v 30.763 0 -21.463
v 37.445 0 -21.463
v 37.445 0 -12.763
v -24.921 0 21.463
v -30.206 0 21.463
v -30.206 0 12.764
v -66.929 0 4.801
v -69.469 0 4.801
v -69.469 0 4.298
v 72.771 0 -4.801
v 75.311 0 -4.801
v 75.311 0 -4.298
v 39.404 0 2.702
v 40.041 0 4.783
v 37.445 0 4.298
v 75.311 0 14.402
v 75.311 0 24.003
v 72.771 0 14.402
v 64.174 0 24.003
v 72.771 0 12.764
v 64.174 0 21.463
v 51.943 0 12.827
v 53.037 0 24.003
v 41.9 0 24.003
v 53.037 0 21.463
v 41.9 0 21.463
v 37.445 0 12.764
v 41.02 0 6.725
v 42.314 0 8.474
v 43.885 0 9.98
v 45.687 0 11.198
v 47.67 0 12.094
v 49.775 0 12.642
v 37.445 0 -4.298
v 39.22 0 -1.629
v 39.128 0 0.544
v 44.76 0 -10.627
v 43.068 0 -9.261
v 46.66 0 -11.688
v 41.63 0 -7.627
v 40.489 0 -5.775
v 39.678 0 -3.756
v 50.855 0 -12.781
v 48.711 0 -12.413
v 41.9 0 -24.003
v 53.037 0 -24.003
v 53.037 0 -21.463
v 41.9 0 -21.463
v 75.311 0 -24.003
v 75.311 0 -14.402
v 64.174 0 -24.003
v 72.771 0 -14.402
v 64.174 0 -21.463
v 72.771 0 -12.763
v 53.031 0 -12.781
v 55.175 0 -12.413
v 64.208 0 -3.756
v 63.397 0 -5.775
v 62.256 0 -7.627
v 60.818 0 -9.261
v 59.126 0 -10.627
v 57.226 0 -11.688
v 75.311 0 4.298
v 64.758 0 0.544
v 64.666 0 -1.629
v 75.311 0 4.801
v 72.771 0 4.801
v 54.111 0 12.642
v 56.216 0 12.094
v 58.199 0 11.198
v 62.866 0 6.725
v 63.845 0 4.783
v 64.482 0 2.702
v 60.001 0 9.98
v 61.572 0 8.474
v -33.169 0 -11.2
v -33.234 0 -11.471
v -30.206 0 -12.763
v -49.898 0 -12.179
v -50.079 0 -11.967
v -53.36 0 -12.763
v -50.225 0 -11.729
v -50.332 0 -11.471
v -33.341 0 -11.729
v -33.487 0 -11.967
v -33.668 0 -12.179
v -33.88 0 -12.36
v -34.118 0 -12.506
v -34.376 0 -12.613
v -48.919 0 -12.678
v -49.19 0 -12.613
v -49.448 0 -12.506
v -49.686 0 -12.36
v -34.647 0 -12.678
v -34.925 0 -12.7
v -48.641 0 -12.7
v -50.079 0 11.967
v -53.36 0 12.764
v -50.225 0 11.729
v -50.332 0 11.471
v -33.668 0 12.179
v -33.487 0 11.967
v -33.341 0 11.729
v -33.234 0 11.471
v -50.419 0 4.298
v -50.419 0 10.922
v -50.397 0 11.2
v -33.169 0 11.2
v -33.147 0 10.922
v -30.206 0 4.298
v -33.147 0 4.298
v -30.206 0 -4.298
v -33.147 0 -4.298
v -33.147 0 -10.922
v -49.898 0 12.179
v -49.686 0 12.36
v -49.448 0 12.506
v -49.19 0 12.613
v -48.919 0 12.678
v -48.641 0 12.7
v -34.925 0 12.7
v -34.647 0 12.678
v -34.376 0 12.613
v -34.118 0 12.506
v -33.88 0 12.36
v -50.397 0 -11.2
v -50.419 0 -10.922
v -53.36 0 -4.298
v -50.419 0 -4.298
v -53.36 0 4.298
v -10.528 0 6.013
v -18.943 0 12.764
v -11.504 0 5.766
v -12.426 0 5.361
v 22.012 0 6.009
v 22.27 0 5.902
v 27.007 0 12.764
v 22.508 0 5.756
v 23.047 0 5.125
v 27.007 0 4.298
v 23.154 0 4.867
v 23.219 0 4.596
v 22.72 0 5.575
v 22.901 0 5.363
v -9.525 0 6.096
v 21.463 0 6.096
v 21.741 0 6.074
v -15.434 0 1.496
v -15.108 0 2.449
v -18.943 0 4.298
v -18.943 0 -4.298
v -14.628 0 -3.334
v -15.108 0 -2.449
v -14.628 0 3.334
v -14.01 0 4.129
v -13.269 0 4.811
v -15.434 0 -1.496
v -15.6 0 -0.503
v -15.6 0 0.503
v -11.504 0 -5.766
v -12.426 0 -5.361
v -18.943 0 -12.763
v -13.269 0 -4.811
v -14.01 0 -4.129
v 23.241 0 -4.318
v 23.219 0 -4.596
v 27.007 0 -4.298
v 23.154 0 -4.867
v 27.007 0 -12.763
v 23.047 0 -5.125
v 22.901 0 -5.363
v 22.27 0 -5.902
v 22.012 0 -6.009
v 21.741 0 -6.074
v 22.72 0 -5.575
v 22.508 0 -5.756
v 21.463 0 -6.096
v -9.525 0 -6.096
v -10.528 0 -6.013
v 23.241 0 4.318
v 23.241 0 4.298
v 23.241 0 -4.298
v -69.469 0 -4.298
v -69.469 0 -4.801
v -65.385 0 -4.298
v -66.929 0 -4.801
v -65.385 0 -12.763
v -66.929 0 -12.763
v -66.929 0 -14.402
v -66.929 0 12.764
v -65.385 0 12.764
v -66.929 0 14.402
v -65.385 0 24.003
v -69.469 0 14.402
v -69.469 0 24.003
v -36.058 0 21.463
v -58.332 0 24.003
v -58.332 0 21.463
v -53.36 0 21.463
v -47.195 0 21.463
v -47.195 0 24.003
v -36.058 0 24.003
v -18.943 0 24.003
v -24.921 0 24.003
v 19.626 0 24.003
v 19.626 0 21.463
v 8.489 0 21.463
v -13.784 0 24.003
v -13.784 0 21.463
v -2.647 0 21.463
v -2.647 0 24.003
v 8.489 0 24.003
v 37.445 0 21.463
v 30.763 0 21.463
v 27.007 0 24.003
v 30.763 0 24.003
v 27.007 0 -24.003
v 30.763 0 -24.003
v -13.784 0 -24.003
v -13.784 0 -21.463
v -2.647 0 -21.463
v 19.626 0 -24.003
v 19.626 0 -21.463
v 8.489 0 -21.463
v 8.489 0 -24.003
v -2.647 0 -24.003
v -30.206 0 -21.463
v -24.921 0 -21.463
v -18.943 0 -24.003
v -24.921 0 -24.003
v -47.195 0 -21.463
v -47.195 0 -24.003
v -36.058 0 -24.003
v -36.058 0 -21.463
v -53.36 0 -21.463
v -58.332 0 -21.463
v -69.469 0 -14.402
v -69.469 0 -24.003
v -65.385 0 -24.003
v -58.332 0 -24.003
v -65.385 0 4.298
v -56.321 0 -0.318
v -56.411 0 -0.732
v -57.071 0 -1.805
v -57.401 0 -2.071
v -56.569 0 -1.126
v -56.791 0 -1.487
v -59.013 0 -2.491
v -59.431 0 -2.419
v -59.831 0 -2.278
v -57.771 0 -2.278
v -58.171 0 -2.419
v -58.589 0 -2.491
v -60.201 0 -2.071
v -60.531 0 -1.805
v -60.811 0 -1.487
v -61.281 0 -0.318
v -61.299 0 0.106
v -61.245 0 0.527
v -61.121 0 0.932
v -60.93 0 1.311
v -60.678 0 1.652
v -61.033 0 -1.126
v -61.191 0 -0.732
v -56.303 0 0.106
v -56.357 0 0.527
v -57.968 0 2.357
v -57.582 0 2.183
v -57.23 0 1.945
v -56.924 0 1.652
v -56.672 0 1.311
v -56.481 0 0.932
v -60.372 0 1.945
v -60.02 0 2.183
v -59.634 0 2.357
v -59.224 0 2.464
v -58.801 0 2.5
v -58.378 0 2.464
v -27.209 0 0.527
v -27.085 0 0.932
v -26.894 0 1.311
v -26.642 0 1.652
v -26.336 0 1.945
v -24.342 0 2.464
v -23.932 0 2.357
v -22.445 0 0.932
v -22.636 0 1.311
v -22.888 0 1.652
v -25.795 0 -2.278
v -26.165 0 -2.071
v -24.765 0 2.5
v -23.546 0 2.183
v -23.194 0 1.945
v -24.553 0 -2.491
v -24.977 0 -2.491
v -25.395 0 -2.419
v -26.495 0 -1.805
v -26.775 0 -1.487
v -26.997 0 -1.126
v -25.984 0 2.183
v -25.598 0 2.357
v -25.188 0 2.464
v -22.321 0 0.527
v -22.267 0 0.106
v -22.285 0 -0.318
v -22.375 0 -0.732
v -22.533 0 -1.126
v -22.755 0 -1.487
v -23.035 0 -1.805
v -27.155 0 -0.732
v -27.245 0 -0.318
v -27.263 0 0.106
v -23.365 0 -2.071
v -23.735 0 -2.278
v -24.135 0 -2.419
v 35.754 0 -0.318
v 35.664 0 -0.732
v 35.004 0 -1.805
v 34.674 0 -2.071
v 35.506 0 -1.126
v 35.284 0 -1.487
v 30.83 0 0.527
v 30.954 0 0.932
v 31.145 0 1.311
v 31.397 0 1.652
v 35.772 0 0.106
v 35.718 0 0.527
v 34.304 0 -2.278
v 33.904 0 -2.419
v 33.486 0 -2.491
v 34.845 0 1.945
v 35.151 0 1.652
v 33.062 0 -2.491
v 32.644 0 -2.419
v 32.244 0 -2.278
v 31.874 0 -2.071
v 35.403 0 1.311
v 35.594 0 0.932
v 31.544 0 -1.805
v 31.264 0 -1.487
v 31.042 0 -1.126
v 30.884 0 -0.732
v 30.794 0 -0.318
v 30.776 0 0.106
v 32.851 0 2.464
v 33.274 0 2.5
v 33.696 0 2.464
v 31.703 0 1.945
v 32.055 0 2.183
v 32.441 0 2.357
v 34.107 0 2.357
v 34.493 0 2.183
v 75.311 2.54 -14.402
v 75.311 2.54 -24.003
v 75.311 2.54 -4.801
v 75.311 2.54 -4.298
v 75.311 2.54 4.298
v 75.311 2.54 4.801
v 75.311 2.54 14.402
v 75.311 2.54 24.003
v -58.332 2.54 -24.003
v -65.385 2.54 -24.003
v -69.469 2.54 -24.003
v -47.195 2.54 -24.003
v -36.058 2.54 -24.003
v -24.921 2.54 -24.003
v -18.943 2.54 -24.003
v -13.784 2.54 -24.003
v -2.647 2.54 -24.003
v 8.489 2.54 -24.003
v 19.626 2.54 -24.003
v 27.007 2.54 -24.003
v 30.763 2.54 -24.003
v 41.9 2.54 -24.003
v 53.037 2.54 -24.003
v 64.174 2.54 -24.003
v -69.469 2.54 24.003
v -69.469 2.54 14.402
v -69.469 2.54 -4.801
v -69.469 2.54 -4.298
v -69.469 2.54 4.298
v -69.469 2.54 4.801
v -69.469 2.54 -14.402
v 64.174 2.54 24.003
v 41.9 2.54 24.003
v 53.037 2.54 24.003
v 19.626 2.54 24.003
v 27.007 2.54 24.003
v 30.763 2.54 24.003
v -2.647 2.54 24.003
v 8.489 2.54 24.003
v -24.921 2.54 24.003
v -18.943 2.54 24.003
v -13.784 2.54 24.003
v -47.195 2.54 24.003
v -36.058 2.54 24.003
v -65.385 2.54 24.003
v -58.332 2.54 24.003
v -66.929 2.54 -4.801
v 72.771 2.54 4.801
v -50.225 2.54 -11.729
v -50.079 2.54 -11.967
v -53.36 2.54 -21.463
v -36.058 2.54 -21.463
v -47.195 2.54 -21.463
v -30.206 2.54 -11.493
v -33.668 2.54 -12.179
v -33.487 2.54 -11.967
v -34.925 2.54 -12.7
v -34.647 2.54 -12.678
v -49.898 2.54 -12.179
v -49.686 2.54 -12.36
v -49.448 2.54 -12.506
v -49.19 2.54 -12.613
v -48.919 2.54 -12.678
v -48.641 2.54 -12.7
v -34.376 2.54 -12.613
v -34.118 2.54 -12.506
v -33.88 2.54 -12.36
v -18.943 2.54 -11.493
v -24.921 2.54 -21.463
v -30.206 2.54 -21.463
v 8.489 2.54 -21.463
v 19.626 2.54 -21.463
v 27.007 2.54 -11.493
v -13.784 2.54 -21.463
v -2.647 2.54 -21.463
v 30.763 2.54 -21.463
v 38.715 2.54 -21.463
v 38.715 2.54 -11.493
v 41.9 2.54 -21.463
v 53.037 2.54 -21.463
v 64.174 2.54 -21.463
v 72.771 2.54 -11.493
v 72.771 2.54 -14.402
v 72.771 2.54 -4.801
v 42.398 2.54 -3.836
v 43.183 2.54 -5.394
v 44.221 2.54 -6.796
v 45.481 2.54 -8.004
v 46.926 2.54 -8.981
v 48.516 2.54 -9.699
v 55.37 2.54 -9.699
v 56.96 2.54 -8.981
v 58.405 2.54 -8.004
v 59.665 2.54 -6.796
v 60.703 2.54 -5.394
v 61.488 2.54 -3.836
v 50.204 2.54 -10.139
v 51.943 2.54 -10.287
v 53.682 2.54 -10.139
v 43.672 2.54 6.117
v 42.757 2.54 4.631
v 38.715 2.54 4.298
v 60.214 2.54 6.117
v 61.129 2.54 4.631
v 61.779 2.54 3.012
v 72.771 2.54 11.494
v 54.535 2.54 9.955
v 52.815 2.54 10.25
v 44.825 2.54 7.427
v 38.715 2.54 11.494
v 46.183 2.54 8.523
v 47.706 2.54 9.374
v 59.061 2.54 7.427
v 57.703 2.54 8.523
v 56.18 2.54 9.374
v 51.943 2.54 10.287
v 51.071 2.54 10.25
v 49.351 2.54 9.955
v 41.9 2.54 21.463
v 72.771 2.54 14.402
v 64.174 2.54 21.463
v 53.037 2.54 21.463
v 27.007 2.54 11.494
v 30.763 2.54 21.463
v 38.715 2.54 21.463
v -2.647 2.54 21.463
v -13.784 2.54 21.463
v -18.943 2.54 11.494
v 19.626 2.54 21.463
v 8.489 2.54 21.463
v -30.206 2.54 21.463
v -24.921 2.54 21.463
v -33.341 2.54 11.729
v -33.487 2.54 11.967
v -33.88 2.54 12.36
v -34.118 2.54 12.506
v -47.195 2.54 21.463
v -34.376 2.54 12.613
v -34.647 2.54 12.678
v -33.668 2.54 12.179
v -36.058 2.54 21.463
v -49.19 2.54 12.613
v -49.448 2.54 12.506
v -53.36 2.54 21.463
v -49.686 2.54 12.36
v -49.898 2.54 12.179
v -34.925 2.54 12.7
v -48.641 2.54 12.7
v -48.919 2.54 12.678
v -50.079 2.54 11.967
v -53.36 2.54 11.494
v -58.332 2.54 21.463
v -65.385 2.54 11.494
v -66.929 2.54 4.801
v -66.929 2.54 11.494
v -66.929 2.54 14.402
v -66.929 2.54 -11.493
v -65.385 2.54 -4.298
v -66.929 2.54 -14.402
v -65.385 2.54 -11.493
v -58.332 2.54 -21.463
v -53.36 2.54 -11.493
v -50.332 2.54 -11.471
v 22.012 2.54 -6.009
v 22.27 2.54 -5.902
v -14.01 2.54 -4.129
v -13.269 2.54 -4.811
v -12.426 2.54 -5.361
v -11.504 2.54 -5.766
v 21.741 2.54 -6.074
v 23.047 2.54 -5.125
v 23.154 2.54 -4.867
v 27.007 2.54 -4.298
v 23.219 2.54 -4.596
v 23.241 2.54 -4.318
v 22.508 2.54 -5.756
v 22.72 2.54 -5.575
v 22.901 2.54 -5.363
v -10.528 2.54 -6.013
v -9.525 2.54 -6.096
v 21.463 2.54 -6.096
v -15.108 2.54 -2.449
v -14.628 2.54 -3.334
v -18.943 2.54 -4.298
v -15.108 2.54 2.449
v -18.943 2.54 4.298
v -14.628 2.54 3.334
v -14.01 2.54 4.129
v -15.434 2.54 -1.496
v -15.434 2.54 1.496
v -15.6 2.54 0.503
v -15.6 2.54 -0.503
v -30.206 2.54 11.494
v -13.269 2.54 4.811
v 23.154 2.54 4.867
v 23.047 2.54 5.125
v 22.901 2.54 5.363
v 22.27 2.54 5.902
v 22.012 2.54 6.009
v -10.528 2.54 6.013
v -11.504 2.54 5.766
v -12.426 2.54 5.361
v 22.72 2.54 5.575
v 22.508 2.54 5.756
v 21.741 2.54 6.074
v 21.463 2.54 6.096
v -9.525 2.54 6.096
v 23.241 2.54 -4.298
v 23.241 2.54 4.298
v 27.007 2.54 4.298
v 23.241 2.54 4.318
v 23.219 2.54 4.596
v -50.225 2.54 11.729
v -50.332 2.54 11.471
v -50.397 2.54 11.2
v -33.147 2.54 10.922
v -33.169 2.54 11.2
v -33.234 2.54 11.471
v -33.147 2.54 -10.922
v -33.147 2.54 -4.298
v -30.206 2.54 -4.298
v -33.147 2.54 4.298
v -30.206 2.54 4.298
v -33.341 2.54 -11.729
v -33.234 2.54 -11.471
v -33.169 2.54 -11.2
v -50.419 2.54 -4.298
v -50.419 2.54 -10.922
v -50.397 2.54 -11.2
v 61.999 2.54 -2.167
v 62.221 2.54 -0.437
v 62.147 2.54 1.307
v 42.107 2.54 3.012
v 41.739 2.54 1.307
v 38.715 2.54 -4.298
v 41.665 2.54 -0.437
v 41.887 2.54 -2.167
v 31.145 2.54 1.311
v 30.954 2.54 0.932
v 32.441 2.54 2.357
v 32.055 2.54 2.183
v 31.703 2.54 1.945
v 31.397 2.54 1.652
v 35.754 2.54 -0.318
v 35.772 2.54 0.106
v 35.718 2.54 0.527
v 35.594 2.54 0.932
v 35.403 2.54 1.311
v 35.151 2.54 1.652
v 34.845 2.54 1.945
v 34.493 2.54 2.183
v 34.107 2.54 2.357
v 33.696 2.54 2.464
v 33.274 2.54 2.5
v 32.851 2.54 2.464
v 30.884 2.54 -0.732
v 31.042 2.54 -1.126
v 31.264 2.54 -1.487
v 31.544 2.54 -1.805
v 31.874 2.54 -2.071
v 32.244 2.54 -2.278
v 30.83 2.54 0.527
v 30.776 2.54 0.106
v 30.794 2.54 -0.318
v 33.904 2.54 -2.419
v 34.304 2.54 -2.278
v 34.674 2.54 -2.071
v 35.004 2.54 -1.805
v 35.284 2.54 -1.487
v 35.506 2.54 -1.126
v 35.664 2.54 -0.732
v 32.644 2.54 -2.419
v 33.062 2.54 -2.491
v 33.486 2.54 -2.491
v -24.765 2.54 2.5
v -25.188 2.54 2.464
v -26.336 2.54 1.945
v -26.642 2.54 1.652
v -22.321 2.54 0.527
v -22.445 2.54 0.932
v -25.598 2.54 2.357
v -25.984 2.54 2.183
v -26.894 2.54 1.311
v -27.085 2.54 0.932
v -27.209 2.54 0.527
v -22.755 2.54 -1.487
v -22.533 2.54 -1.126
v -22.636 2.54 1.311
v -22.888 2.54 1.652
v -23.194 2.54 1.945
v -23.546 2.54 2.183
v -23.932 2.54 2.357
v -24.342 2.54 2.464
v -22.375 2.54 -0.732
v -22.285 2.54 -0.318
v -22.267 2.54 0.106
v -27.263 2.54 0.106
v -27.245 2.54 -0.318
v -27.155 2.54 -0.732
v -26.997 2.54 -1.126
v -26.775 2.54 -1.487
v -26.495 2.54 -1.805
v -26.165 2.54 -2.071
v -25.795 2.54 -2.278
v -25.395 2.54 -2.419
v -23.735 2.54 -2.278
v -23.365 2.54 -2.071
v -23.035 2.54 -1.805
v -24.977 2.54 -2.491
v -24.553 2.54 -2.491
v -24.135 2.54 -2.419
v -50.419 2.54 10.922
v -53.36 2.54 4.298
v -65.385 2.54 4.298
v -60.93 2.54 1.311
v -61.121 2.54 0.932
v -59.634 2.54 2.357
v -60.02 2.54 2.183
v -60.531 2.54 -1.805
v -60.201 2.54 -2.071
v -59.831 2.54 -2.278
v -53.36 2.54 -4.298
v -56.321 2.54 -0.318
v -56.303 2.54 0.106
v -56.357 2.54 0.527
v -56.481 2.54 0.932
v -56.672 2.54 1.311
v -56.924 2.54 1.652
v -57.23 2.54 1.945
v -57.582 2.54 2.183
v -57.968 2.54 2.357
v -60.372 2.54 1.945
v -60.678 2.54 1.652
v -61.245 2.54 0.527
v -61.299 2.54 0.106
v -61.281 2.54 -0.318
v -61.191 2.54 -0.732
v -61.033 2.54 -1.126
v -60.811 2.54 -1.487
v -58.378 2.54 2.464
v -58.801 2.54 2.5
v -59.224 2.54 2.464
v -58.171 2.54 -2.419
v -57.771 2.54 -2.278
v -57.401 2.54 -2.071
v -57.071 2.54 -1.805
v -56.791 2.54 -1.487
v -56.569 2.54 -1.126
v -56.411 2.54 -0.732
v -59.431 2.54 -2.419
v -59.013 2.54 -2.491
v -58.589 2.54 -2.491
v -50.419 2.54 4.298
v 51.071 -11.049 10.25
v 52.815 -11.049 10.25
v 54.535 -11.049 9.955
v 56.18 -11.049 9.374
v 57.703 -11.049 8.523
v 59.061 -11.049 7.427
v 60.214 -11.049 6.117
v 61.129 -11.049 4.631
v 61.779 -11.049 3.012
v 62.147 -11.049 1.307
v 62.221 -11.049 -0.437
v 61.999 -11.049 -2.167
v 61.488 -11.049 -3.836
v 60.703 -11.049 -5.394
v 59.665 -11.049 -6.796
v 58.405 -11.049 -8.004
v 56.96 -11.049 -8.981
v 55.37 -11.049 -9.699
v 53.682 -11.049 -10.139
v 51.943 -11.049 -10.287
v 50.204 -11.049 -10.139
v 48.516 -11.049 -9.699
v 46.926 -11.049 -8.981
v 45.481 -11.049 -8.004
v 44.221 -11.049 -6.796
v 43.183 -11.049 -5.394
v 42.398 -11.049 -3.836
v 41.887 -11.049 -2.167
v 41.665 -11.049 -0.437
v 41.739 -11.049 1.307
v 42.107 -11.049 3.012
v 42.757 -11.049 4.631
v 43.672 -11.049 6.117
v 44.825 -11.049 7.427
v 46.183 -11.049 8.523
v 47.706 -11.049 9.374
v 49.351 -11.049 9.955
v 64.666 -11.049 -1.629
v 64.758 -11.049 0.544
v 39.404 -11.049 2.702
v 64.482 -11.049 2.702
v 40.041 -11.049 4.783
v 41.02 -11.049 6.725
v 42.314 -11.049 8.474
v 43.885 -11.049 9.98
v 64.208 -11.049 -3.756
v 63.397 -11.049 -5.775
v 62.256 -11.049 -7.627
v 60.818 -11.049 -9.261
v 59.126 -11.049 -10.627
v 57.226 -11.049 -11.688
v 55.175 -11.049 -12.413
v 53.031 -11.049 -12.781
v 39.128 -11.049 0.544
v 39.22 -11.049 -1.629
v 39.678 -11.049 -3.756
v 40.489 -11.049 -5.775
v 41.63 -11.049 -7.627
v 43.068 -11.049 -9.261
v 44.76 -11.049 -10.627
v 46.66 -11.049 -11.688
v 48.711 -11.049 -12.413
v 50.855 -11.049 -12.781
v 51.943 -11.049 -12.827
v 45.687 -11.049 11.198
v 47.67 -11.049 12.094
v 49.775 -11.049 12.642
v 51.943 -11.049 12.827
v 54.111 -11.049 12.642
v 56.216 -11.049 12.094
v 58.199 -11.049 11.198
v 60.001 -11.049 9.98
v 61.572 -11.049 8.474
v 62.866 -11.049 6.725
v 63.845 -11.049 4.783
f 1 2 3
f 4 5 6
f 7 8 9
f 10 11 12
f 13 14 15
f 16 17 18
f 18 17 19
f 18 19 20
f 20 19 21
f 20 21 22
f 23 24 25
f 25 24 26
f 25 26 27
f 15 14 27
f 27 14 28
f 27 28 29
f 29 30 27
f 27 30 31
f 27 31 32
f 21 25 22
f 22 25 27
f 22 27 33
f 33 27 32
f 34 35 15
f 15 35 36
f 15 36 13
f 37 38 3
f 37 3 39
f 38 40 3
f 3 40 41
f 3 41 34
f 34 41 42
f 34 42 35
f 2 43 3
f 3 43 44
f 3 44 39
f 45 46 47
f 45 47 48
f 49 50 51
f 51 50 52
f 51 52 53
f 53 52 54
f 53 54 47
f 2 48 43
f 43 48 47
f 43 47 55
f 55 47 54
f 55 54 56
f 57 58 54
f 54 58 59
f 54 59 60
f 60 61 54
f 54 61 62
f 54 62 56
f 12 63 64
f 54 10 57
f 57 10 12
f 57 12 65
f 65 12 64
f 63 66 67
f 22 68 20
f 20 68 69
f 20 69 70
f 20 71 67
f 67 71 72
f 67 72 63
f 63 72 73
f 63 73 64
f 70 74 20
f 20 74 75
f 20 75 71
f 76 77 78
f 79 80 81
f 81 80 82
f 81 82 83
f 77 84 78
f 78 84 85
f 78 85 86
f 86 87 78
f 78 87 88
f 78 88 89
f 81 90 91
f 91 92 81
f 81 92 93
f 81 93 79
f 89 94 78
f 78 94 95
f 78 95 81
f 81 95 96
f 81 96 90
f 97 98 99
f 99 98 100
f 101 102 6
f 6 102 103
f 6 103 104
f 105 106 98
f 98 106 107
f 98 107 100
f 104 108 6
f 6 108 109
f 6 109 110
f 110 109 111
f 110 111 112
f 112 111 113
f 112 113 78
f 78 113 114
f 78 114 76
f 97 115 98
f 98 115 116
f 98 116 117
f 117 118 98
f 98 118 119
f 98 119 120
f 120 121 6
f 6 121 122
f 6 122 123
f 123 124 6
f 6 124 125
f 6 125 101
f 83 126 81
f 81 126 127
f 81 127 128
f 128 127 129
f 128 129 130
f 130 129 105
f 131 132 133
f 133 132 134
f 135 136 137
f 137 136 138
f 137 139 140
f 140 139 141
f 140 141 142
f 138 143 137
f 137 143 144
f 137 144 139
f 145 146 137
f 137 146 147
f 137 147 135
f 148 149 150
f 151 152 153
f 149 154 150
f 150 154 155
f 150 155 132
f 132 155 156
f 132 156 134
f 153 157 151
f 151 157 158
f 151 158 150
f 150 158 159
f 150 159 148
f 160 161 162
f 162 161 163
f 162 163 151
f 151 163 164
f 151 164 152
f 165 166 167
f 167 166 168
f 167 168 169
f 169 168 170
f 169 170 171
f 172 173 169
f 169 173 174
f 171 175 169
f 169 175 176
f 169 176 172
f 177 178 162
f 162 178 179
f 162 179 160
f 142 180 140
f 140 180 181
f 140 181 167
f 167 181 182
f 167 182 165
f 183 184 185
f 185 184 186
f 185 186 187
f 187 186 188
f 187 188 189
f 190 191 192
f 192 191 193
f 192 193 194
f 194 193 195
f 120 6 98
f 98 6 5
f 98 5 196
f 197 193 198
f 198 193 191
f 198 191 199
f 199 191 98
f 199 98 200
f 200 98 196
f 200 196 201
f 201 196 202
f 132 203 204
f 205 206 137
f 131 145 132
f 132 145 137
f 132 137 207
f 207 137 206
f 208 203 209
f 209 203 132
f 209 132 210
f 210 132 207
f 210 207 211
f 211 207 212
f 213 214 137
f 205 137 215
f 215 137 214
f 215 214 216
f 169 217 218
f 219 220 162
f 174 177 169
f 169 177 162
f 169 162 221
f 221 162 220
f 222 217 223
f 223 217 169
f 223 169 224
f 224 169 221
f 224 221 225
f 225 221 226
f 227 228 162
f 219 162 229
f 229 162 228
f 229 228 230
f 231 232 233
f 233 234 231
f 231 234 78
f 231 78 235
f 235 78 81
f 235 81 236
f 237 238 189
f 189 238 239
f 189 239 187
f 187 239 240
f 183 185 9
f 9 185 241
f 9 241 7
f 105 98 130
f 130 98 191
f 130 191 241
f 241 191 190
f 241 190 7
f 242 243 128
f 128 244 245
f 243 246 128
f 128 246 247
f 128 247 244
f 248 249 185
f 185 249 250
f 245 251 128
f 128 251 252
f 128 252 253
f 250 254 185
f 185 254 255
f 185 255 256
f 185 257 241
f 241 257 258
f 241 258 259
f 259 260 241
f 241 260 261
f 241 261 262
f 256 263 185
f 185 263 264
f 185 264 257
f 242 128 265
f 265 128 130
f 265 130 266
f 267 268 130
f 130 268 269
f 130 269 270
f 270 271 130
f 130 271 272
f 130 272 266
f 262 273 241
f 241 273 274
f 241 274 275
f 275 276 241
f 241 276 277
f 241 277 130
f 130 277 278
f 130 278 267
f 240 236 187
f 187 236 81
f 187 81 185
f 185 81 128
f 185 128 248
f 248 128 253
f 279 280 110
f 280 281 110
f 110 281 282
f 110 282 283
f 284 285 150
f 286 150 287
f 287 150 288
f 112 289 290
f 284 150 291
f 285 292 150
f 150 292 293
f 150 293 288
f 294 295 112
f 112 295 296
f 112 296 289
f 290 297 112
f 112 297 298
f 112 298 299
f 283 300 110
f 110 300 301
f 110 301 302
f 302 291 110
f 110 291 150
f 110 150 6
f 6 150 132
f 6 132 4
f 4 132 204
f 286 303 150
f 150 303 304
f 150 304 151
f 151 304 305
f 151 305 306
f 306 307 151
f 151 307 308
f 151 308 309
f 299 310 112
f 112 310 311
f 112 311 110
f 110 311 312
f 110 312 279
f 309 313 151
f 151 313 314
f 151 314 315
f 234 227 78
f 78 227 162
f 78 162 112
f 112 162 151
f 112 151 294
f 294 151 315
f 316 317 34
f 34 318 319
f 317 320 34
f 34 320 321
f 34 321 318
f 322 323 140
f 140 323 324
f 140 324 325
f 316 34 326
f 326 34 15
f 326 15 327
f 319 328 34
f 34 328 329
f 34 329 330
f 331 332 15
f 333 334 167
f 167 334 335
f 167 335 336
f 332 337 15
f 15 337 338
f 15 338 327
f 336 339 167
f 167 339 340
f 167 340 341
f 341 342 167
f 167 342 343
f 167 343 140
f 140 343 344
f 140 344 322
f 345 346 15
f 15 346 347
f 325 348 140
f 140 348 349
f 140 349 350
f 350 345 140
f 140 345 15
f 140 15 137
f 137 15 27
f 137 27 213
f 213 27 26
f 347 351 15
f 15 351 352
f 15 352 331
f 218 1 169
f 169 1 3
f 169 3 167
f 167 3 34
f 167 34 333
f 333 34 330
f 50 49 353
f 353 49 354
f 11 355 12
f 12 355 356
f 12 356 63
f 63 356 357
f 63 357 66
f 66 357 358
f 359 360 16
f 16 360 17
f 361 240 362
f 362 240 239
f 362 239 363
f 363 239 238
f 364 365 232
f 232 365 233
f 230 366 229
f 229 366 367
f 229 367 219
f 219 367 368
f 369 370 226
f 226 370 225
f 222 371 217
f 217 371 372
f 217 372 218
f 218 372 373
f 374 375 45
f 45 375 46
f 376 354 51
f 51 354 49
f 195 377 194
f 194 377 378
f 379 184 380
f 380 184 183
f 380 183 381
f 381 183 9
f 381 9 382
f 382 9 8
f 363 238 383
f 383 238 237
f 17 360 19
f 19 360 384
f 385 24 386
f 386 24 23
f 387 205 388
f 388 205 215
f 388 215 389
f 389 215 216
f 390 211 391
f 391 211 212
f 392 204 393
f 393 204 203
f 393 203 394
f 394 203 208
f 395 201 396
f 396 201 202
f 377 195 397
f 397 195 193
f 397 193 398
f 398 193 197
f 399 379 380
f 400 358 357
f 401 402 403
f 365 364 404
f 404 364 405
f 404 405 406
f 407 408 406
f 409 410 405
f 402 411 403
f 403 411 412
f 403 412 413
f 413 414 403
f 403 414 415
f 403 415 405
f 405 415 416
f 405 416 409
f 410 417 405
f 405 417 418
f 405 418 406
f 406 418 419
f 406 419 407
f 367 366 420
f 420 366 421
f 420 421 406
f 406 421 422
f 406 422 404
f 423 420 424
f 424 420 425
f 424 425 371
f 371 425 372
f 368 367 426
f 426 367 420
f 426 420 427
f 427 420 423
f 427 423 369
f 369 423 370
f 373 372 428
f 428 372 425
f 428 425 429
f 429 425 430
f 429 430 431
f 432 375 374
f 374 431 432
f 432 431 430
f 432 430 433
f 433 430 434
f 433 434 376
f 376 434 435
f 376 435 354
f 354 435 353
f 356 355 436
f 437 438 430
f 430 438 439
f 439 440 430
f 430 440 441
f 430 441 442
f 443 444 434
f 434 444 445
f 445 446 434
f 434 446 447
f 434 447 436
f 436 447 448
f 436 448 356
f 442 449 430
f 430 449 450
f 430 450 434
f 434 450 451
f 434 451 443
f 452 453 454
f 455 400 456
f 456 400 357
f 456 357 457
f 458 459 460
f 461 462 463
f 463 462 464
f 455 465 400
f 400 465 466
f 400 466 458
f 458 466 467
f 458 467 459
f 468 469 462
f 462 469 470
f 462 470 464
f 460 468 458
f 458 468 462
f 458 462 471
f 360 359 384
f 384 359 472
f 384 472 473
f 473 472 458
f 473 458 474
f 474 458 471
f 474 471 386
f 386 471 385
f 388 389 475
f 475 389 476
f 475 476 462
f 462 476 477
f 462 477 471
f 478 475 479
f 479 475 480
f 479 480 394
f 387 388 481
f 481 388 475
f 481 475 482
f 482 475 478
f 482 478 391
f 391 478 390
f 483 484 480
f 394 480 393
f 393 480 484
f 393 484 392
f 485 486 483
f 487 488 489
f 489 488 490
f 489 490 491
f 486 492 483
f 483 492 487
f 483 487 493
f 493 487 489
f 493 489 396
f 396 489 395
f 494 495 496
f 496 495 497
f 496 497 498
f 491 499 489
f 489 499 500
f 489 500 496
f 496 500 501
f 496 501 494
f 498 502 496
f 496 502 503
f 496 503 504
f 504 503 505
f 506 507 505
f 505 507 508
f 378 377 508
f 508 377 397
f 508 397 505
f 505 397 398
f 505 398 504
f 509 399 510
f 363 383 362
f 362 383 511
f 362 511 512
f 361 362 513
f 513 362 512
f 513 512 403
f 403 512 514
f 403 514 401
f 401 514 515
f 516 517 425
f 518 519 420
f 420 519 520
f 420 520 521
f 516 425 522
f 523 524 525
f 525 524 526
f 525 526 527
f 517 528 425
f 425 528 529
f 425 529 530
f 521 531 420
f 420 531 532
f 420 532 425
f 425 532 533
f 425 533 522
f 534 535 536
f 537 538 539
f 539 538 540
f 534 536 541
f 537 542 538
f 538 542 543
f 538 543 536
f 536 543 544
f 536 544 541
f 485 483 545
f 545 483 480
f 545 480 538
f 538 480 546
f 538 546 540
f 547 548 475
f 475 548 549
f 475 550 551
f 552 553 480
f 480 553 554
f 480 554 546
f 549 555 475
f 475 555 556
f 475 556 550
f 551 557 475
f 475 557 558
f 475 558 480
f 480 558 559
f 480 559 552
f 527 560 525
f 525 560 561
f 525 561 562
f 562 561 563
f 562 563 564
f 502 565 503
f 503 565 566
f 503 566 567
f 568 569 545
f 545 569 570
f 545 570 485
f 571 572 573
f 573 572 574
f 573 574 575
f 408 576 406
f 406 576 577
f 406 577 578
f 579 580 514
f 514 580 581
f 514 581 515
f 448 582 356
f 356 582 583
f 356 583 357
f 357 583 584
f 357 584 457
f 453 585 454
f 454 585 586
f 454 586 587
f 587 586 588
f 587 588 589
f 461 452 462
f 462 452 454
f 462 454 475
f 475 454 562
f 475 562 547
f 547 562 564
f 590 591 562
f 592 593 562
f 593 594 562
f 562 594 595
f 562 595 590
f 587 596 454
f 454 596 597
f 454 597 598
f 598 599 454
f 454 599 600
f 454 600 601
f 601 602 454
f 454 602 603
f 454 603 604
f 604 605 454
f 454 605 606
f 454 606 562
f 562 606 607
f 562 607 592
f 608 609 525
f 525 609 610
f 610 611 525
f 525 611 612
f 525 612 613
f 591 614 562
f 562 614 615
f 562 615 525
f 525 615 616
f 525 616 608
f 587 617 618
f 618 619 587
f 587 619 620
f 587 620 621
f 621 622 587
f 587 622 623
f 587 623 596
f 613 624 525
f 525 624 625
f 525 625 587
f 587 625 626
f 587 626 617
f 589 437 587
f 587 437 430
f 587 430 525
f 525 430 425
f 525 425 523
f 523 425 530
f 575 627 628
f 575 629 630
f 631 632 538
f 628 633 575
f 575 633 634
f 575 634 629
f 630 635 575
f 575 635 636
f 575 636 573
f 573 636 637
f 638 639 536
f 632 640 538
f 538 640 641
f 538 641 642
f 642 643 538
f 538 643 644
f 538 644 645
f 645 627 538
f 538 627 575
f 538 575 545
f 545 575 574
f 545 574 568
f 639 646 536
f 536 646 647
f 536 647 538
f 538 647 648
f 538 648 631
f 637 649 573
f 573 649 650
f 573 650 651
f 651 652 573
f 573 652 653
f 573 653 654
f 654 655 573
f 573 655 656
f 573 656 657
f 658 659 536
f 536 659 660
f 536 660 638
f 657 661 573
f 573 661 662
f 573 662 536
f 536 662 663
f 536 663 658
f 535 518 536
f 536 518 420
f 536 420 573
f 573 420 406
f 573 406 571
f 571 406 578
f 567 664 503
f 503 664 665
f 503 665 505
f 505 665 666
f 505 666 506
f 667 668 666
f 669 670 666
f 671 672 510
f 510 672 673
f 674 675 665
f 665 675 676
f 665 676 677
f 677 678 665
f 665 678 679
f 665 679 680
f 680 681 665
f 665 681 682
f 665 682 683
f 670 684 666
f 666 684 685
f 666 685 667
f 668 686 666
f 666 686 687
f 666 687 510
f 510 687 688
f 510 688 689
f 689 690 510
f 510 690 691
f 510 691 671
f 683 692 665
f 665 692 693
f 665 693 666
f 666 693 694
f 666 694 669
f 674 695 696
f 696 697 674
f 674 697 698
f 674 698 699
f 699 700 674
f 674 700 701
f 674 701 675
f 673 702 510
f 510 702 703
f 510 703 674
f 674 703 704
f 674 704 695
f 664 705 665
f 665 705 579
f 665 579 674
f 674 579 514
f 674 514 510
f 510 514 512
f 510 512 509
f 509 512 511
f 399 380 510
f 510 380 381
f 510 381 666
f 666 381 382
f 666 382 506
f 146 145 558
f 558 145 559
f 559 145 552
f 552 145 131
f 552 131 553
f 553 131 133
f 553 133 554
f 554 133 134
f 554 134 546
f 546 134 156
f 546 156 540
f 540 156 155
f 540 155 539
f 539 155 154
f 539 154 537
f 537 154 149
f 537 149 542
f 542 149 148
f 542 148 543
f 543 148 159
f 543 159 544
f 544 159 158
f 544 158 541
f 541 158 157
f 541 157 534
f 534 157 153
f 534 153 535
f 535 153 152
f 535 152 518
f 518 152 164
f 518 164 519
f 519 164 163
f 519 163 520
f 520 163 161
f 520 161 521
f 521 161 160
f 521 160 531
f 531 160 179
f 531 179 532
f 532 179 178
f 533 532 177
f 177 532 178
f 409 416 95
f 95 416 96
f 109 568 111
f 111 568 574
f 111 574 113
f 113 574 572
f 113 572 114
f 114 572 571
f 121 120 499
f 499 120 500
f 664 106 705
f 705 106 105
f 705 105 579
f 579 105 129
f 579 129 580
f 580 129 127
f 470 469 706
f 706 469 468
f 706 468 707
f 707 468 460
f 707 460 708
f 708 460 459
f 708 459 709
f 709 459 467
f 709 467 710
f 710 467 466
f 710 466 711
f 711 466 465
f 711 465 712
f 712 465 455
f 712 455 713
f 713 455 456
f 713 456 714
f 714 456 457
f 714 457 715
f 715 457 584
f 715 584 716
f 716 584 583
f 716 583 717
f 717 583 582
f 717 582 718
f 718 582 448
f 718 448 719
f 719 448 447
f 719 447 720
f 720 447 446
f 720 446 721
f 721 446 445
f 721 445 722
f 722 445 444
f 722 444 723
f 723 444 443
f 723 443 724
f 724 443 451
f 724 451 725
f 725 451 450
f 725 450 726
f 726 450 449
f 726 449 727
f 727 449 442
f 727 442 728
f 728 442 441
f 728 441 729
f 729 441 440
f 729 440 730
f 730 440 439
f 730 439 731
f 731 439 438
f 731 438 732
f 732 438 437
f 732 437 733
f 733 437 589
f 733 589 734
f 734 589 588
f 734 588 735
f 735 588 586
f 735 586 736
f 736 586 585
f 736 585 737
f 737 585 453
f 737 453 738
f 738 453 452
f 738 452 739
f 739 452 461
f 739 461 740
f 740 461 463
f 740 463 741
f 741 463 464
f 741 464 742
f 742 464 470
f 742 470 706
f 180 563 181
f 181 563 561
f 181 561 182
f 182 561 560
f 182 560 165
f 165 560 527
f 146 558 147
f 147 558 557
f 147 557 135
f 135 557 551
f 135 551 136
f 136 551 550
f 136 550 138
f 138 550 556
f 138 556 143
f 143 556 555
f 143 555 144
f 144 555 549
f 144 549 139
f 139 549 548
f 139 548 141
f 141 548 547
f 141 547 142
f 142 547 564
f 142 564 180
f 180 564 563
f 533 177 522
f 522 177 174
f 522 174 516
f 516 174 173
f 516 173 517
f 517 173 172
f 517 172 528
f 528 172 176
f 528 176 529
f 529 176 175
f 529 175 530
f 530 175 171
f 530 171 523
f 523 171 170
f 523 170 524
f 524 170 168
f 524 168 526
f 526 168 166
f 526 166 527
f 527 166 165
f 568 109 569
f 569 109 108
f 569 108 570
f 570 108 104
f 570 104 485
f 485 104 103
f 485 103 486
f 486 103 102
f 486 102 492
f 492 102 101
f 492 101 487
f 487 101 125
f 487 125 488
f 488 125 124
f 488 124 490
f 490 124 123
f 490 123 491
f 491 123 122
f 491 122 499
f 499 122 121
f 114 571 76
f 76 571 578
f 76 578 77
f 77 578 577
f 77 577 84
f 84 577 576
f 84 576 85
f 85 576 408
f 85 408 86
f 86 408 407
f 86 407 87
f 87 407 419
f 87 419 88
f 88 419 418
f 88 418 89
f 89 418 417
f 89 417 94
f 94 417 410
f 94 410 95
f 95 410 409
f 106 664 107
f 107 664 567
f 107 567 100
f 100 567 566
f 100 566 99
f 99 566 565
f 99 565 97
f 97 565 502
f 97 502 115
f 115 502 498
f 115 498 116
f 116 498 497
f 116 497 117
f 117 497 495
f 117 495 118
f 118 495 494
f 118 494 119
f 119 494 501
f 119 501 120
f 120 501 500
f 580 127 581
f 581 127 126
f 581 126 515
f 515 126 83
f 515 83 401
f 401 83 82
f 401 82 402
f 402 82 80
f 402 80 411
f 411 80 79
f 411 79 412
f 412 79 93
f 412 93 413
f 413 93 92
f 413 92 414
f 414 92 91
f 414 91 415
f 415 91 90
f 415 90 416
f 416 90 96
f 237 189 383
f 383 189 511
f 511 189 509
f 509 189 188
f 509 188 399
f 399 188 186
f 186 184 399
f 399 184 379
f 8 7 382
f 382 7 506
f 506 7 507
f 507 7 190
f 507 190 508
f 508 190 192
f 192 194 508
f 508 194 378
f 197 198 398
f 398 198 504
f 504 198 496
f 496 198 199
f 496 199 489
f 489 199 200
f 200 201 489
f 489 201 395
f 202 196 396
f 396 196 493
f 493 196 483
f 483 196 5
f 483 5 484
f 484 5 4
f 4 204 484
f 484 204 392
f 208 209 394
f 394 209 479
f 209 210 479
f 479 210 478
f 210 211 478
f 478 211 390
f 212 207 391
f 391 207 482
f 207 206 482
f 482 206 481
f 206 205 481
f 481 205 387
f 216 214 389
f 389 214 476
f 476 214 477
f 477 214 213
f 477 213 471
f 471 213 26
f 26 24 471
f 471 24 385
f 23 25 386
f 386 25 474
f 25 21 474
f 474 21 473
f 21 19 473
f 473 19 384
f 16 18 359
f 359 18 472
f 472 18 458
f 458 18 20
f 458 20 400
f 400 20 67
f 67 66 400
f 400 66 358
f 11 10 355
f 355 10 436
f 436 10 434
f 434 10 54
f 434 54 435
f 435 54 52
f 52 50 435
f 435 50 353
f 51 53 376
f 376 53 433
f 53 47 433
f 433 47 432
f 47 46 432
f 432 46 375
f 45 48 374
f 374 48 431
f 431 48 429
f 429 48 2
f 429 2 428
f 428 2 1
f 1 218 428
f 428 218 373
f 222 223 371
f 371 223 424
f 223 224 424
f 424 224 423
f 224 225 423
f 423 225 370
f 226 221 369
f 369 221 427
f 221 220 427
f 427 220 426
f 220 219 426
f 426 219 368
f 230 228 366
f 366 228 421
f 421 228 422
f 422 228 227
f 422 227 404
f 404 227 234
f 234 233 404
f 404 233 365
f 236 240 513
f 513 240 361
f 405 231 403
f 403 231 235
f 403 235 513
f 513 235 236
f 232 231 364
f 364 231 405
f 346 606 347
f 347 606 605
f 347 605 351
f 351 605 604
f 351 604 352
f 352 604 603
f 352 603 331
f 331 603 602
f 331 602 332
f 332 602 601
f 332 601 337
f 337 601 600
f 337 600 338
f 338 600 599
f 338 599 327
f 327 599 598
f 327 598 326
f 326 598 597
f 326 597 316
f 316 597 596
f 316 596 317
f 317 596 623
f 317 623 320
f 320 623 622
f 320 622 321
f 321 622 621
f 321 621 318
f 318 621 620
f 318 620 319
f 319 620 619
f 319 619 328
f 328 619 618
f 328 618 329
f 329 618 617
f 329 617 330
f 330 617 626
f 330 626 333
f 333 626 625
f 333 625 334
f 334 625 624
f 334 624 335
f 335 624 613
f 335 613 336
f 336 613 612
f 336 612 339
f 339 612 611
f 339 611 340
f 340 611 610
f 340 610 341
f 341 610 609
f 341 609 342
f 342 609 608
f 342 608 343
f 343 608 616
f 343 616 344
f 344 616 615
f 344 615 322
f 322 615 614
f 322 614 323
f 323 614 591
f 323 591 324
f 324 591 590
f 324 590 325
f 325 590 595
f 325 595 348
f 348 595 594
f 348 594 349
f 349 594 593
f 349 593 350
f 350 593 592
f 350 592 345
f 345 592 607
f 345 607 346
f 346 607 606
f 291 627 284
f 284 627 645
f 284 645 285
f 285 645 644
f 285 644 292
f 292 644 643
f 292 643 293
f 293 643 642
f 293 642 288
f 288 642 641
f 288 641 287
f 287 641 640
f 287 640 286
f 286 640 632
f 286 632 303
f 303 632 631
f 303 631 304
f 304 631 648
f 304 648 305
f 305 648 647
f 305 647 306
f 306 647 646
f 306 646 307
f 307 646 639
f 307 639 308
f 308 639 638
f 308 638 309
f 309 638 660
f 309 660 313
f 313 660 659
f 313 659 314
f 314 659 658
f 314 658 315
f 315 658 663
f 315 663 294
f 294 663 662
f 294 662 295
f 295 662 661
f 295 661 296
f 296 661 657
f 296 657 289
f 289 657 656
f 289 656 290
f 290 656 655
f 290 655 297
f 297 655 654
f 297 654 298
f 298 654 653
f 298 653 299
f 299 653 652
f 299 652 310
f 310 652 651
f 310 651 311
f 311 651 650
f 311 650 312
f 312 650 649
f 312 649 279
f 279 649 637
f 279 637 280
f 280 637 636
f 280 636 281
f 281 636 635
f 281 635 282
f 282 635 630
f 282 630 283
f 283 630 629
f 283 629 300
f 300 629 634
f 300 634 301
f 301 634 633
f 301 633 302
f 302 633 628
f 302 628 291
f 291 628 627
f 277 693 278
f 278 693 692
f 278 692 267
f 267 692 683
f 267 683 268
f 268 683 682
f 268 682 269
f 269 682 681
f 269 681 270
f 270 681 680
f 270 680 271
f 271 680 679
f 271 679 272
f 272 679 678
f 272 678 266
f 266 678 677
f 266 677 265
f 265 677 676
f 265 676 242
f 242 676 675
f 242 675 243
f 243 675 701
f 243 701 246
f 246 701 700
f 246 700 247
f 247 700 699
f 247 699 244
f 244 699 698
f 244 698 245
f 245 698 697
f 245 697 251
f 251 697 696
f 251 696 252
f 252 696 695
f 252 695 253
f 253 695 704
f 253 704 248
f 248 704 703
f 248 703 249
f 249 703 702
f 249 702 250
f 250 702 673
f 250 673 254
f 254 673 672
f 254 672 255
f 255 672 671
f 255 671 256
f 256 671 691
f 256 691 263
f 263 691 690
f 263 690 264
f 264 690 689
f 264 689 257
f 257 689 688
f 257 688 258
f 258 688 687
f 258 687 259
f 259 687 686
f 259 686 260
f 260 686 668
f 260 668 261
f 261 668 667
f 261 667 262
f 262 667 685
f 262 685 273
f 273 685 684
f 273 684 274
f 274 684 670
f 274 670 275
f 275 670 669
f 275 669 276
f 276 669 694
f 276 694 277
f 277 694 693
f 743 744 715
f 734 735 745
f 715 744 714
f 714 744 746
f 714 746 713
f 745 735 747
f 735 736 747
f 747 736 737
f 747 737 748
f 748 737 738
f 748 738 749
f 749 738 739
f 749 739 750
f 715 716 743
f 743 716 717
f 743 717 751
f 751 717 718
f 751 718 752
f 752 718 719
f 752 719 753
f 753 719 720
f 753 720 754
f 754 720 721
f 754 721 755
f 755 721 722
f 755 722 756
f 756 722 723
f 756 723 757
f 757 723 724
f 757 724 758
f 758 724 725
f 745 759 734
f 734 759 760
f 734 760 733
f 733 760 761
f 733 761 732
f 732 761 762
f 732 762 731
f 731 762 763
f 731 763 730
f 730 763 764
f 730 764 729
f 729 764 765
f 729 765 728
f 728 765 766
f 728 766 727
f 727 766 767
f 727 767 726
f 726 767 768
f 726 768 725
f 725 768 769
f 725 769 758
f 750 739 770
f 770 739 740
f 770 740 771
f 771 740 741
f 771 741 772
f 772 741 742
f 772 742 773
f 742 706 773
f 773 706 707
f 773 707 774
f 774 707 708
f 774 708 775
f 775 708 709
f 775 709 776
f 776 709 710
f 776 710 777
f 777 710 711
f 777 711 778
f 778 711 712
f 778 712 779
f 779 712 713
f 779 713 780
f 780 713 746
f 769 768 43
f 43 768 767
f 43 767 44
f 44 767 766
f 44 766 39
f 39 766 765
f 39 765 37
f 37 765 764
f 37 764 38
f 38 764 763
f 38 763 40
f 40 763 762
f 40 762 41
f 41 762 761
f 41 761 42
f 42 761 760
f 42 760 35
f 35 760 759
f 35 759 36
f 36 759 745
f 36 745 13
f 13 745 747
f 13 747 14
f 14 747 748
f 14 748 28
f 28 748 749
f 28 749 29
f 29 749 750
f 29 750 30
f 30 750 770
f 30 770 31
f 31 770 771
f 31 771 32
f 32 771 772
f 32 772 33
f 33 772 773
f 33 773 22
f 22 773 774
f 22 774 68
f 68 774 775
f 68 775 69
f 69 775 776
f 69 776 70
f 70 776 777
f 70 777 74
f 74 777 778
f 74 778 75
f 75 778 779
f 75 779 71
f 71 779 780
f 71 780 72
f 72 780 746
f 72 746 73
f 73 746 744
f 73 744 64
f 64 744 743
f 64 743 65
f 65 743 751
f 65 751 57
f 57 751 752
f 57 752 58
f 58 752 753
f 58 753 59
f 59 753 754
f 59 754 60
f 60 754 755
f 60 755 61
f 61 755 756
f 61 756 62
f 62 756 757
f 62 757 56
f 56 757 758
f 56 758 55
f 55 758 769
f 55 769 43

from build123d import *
from build123d.topology import SkipClean

# Parameters (mm, degrees)
SKETCH1_W           = 144.78
SKETCH1_H           = 48.006
SKETCH1_R           = 10.287
SKETCH1_W_2         = 17.272
SKETCH1_H_2         = 25.4
BOSS_EXTRUDE1_DEPTH = 2.54
FILLET1_R           = 1.778
SKETCH2_OUTSIDE_W   = 177.29
SKETCH2_OUTSIDE_H   = 80.516
CUT_EXTRUDE1_DEPTH  = 2.54
SKETCH3_R           = 2.5
CUT_EXTRUDE2_DEPTH  = 80.084400042
BOSS_EXTRUDE2_START = 11.049
SKETCH4_R           = 12.827
SKETCH4_R_2         = 10.287
BOSS_EXTRUDE2_DEPTH = 11.049


with BuildPart() as part:
    # Sketch1 → Boss-Extrude1 (new body)
    with BuildSketch(Plane(origin=(0, 0, 0), x_dir=(1, 0, 0), z_dir=(0, 1, 0))):
        with Locations((2.921, 0)):
            Rectangle(SKETCH1_W, SKETCH1_H)
        with Locations(Location((51.943, 0, 0), (0, 0, 270))):
            Circle(SKETCH1_R, mode=Mode.SUBTRACT)
        with Locations((-41.783, 0)):
            Rectangle(SKETCH1_W_2, SKETCH1_H_2, mode=Mode.SUBTRACT)
        with BuildLine():
            Line((23.241, -6.096), (-9.525, -6.096))
            ThreePointArc((-9.525, -6.096), (-15.621, 0), (-9.525, 6.096))
            Line((-9.525, 6.096), (23.241, 6.096))
            Line((23.241, 6.096), (23.241, -6.096))
        make_face(mode=Mode.SUBTRACT)
    extrude(amount=BOSS_EXTRUDE1_DEPTH)

    # Fillet1
    fillet1_edges = [part.edges().sort_by_distance(p)[0] for p in [
        (23.241, 1.27, 6.096),
        (23.241, 1.27, -6.096),
        (-50.419, 1.27, -12.7),
        (-50.419, 1.27, 12.7),
        (-33.147, 1.27, 12.7),
        (-33.147, 1.27, -12.7),
    ]]
    fillet(fillet1_edges, radius=FILLET1_R)

    # Sketch2 outside → Cut-Extrude1 (cut)
    with BuildSketch(Plane(origin=(0, 2.54, 0), x_dir=(1, 0, 0), z_dir=(0, 1, 0))):
        with Locations((2.921, 0)):
            Rectangle(SKETCH2_OUTSIDE_W, SKETCH2_OUTSIDE_H)
        Polygon((-69.469, 24.003), (-69.469, 14.4018), (-66.929, 14.4018), (-66.929, 4.8006), (-69.469, 4.8006), (-69.469, -4.8006), (-66.929, -4.8006), (-66.929, -14.4018), (-69.469, -14.4018), (-69.469, -24.003), (-58.332076923, -24.003), (-58.332076923, -21.463), (-47.195153846, -21.463), (-47.195153846, -24.003), (-36.058230769, -24.003), (-36.058230769, -21.463), (-24.921307692, -21.463), (-24.921307692, -24.003), (-13.784384615, -24.003), (-13.784384615, -21.463), (-2.647461538, -21.463), (-2.647461538, -24.003), (8.489461538, -24.003), (8.489461538, -21.463), (19.626384615, -21.463), (19.626384615, -24.003), (30.763307692, -24.003), (30.763307692, -21.463), (41.900230769, -21.463), (41.900230769, -24.003), (53.037153846, -24.003), (53.037153846, -21.463), (64.174076923, -21.463), (64.174076923, -24.003), (75.311, -24.003), (75.311, -14.4018), (72.771, -14.4018), (72.771, -4.8006), (75.311, -4.8006), (75.311, 4.8006), (72.771, 4.8006), (72.771, 14.4018), (75.311, 14.4018), (75.311, 24.003), (64.174076923, 24.003), (64.174076923, 21.463), (53.037153846, 21.463), (53.037153846, 24.003), (41.900230769, 24.003), (41.900230769, 21.463), (30.763307692, 21.463), (30.763307692, 24.003), (19.626384615, 24.003), (19.626384615, 21.463), (8.489461538, 21.463), (8.489461538, 24.003), (-2.647461538, 24.003), (-2.647461538, 21.463), (-13.784384615, 21.463), (-13.784384615, 24.003), (-24.921307692, 24.003), (-24.921307692, 21.463), (-36.058230769, 21.463), (-36.058230769, 24.003), (-47.195153846, 24.003), (-47.195153846, 21.463), (-58.332076923, 21.463), (-58.332076923, 24.003), align=None, mode=Mode.SUBTRACT)
    extrude(amount=-CUT_EXTRUDE1_DEPTH, mode=Mode.SUBTRACT)

    # Sketch3 → Cut-Extrude2 (cut, through all)
    with BuildSketch(Plane(origin=(0, 2.54, 0), x_dir=(1, 0, 0), z_dir=(0, 1, 0))):
        with Locations(Location((-58.801, 0, 0), (0, 0, 270))):
            Circle(SKETCH3_R)
        with Locations(Location((-24.765, 0, 0), (0, 0, 270))):
            Circle(SKETCH3_R)
        with Locations(Location((33.274, 0, 0), (0, 0, 270))):
            Circle(SKETCH3_R)
    extrude(amount=-CUT_EXTRUDE2_DEPTH, mode=Mode.SUBTRACT)

    # Sketch4 → Boss-Extrude2 (add)
    with SkipClean():  # the faces are left unmerged after this step: merging them gives an invalid solid
        with BuildSketch(Plane.XZ.offset(BOSS_EXTRUDE2_START)):
            with Locations(Location((51.943, 0, 0), (0, 0, 90))):
                Circle(SKETCH4_R)
            with Locations(Location((51.943, 0, 0), (0, 0, 270))):
                Circle(SKETCH4_R_2, mode=Mode.SUBTRACT)
        extrude(amount=-BOSS_EXTRUDE2_DEPTH)


solid = part.part
